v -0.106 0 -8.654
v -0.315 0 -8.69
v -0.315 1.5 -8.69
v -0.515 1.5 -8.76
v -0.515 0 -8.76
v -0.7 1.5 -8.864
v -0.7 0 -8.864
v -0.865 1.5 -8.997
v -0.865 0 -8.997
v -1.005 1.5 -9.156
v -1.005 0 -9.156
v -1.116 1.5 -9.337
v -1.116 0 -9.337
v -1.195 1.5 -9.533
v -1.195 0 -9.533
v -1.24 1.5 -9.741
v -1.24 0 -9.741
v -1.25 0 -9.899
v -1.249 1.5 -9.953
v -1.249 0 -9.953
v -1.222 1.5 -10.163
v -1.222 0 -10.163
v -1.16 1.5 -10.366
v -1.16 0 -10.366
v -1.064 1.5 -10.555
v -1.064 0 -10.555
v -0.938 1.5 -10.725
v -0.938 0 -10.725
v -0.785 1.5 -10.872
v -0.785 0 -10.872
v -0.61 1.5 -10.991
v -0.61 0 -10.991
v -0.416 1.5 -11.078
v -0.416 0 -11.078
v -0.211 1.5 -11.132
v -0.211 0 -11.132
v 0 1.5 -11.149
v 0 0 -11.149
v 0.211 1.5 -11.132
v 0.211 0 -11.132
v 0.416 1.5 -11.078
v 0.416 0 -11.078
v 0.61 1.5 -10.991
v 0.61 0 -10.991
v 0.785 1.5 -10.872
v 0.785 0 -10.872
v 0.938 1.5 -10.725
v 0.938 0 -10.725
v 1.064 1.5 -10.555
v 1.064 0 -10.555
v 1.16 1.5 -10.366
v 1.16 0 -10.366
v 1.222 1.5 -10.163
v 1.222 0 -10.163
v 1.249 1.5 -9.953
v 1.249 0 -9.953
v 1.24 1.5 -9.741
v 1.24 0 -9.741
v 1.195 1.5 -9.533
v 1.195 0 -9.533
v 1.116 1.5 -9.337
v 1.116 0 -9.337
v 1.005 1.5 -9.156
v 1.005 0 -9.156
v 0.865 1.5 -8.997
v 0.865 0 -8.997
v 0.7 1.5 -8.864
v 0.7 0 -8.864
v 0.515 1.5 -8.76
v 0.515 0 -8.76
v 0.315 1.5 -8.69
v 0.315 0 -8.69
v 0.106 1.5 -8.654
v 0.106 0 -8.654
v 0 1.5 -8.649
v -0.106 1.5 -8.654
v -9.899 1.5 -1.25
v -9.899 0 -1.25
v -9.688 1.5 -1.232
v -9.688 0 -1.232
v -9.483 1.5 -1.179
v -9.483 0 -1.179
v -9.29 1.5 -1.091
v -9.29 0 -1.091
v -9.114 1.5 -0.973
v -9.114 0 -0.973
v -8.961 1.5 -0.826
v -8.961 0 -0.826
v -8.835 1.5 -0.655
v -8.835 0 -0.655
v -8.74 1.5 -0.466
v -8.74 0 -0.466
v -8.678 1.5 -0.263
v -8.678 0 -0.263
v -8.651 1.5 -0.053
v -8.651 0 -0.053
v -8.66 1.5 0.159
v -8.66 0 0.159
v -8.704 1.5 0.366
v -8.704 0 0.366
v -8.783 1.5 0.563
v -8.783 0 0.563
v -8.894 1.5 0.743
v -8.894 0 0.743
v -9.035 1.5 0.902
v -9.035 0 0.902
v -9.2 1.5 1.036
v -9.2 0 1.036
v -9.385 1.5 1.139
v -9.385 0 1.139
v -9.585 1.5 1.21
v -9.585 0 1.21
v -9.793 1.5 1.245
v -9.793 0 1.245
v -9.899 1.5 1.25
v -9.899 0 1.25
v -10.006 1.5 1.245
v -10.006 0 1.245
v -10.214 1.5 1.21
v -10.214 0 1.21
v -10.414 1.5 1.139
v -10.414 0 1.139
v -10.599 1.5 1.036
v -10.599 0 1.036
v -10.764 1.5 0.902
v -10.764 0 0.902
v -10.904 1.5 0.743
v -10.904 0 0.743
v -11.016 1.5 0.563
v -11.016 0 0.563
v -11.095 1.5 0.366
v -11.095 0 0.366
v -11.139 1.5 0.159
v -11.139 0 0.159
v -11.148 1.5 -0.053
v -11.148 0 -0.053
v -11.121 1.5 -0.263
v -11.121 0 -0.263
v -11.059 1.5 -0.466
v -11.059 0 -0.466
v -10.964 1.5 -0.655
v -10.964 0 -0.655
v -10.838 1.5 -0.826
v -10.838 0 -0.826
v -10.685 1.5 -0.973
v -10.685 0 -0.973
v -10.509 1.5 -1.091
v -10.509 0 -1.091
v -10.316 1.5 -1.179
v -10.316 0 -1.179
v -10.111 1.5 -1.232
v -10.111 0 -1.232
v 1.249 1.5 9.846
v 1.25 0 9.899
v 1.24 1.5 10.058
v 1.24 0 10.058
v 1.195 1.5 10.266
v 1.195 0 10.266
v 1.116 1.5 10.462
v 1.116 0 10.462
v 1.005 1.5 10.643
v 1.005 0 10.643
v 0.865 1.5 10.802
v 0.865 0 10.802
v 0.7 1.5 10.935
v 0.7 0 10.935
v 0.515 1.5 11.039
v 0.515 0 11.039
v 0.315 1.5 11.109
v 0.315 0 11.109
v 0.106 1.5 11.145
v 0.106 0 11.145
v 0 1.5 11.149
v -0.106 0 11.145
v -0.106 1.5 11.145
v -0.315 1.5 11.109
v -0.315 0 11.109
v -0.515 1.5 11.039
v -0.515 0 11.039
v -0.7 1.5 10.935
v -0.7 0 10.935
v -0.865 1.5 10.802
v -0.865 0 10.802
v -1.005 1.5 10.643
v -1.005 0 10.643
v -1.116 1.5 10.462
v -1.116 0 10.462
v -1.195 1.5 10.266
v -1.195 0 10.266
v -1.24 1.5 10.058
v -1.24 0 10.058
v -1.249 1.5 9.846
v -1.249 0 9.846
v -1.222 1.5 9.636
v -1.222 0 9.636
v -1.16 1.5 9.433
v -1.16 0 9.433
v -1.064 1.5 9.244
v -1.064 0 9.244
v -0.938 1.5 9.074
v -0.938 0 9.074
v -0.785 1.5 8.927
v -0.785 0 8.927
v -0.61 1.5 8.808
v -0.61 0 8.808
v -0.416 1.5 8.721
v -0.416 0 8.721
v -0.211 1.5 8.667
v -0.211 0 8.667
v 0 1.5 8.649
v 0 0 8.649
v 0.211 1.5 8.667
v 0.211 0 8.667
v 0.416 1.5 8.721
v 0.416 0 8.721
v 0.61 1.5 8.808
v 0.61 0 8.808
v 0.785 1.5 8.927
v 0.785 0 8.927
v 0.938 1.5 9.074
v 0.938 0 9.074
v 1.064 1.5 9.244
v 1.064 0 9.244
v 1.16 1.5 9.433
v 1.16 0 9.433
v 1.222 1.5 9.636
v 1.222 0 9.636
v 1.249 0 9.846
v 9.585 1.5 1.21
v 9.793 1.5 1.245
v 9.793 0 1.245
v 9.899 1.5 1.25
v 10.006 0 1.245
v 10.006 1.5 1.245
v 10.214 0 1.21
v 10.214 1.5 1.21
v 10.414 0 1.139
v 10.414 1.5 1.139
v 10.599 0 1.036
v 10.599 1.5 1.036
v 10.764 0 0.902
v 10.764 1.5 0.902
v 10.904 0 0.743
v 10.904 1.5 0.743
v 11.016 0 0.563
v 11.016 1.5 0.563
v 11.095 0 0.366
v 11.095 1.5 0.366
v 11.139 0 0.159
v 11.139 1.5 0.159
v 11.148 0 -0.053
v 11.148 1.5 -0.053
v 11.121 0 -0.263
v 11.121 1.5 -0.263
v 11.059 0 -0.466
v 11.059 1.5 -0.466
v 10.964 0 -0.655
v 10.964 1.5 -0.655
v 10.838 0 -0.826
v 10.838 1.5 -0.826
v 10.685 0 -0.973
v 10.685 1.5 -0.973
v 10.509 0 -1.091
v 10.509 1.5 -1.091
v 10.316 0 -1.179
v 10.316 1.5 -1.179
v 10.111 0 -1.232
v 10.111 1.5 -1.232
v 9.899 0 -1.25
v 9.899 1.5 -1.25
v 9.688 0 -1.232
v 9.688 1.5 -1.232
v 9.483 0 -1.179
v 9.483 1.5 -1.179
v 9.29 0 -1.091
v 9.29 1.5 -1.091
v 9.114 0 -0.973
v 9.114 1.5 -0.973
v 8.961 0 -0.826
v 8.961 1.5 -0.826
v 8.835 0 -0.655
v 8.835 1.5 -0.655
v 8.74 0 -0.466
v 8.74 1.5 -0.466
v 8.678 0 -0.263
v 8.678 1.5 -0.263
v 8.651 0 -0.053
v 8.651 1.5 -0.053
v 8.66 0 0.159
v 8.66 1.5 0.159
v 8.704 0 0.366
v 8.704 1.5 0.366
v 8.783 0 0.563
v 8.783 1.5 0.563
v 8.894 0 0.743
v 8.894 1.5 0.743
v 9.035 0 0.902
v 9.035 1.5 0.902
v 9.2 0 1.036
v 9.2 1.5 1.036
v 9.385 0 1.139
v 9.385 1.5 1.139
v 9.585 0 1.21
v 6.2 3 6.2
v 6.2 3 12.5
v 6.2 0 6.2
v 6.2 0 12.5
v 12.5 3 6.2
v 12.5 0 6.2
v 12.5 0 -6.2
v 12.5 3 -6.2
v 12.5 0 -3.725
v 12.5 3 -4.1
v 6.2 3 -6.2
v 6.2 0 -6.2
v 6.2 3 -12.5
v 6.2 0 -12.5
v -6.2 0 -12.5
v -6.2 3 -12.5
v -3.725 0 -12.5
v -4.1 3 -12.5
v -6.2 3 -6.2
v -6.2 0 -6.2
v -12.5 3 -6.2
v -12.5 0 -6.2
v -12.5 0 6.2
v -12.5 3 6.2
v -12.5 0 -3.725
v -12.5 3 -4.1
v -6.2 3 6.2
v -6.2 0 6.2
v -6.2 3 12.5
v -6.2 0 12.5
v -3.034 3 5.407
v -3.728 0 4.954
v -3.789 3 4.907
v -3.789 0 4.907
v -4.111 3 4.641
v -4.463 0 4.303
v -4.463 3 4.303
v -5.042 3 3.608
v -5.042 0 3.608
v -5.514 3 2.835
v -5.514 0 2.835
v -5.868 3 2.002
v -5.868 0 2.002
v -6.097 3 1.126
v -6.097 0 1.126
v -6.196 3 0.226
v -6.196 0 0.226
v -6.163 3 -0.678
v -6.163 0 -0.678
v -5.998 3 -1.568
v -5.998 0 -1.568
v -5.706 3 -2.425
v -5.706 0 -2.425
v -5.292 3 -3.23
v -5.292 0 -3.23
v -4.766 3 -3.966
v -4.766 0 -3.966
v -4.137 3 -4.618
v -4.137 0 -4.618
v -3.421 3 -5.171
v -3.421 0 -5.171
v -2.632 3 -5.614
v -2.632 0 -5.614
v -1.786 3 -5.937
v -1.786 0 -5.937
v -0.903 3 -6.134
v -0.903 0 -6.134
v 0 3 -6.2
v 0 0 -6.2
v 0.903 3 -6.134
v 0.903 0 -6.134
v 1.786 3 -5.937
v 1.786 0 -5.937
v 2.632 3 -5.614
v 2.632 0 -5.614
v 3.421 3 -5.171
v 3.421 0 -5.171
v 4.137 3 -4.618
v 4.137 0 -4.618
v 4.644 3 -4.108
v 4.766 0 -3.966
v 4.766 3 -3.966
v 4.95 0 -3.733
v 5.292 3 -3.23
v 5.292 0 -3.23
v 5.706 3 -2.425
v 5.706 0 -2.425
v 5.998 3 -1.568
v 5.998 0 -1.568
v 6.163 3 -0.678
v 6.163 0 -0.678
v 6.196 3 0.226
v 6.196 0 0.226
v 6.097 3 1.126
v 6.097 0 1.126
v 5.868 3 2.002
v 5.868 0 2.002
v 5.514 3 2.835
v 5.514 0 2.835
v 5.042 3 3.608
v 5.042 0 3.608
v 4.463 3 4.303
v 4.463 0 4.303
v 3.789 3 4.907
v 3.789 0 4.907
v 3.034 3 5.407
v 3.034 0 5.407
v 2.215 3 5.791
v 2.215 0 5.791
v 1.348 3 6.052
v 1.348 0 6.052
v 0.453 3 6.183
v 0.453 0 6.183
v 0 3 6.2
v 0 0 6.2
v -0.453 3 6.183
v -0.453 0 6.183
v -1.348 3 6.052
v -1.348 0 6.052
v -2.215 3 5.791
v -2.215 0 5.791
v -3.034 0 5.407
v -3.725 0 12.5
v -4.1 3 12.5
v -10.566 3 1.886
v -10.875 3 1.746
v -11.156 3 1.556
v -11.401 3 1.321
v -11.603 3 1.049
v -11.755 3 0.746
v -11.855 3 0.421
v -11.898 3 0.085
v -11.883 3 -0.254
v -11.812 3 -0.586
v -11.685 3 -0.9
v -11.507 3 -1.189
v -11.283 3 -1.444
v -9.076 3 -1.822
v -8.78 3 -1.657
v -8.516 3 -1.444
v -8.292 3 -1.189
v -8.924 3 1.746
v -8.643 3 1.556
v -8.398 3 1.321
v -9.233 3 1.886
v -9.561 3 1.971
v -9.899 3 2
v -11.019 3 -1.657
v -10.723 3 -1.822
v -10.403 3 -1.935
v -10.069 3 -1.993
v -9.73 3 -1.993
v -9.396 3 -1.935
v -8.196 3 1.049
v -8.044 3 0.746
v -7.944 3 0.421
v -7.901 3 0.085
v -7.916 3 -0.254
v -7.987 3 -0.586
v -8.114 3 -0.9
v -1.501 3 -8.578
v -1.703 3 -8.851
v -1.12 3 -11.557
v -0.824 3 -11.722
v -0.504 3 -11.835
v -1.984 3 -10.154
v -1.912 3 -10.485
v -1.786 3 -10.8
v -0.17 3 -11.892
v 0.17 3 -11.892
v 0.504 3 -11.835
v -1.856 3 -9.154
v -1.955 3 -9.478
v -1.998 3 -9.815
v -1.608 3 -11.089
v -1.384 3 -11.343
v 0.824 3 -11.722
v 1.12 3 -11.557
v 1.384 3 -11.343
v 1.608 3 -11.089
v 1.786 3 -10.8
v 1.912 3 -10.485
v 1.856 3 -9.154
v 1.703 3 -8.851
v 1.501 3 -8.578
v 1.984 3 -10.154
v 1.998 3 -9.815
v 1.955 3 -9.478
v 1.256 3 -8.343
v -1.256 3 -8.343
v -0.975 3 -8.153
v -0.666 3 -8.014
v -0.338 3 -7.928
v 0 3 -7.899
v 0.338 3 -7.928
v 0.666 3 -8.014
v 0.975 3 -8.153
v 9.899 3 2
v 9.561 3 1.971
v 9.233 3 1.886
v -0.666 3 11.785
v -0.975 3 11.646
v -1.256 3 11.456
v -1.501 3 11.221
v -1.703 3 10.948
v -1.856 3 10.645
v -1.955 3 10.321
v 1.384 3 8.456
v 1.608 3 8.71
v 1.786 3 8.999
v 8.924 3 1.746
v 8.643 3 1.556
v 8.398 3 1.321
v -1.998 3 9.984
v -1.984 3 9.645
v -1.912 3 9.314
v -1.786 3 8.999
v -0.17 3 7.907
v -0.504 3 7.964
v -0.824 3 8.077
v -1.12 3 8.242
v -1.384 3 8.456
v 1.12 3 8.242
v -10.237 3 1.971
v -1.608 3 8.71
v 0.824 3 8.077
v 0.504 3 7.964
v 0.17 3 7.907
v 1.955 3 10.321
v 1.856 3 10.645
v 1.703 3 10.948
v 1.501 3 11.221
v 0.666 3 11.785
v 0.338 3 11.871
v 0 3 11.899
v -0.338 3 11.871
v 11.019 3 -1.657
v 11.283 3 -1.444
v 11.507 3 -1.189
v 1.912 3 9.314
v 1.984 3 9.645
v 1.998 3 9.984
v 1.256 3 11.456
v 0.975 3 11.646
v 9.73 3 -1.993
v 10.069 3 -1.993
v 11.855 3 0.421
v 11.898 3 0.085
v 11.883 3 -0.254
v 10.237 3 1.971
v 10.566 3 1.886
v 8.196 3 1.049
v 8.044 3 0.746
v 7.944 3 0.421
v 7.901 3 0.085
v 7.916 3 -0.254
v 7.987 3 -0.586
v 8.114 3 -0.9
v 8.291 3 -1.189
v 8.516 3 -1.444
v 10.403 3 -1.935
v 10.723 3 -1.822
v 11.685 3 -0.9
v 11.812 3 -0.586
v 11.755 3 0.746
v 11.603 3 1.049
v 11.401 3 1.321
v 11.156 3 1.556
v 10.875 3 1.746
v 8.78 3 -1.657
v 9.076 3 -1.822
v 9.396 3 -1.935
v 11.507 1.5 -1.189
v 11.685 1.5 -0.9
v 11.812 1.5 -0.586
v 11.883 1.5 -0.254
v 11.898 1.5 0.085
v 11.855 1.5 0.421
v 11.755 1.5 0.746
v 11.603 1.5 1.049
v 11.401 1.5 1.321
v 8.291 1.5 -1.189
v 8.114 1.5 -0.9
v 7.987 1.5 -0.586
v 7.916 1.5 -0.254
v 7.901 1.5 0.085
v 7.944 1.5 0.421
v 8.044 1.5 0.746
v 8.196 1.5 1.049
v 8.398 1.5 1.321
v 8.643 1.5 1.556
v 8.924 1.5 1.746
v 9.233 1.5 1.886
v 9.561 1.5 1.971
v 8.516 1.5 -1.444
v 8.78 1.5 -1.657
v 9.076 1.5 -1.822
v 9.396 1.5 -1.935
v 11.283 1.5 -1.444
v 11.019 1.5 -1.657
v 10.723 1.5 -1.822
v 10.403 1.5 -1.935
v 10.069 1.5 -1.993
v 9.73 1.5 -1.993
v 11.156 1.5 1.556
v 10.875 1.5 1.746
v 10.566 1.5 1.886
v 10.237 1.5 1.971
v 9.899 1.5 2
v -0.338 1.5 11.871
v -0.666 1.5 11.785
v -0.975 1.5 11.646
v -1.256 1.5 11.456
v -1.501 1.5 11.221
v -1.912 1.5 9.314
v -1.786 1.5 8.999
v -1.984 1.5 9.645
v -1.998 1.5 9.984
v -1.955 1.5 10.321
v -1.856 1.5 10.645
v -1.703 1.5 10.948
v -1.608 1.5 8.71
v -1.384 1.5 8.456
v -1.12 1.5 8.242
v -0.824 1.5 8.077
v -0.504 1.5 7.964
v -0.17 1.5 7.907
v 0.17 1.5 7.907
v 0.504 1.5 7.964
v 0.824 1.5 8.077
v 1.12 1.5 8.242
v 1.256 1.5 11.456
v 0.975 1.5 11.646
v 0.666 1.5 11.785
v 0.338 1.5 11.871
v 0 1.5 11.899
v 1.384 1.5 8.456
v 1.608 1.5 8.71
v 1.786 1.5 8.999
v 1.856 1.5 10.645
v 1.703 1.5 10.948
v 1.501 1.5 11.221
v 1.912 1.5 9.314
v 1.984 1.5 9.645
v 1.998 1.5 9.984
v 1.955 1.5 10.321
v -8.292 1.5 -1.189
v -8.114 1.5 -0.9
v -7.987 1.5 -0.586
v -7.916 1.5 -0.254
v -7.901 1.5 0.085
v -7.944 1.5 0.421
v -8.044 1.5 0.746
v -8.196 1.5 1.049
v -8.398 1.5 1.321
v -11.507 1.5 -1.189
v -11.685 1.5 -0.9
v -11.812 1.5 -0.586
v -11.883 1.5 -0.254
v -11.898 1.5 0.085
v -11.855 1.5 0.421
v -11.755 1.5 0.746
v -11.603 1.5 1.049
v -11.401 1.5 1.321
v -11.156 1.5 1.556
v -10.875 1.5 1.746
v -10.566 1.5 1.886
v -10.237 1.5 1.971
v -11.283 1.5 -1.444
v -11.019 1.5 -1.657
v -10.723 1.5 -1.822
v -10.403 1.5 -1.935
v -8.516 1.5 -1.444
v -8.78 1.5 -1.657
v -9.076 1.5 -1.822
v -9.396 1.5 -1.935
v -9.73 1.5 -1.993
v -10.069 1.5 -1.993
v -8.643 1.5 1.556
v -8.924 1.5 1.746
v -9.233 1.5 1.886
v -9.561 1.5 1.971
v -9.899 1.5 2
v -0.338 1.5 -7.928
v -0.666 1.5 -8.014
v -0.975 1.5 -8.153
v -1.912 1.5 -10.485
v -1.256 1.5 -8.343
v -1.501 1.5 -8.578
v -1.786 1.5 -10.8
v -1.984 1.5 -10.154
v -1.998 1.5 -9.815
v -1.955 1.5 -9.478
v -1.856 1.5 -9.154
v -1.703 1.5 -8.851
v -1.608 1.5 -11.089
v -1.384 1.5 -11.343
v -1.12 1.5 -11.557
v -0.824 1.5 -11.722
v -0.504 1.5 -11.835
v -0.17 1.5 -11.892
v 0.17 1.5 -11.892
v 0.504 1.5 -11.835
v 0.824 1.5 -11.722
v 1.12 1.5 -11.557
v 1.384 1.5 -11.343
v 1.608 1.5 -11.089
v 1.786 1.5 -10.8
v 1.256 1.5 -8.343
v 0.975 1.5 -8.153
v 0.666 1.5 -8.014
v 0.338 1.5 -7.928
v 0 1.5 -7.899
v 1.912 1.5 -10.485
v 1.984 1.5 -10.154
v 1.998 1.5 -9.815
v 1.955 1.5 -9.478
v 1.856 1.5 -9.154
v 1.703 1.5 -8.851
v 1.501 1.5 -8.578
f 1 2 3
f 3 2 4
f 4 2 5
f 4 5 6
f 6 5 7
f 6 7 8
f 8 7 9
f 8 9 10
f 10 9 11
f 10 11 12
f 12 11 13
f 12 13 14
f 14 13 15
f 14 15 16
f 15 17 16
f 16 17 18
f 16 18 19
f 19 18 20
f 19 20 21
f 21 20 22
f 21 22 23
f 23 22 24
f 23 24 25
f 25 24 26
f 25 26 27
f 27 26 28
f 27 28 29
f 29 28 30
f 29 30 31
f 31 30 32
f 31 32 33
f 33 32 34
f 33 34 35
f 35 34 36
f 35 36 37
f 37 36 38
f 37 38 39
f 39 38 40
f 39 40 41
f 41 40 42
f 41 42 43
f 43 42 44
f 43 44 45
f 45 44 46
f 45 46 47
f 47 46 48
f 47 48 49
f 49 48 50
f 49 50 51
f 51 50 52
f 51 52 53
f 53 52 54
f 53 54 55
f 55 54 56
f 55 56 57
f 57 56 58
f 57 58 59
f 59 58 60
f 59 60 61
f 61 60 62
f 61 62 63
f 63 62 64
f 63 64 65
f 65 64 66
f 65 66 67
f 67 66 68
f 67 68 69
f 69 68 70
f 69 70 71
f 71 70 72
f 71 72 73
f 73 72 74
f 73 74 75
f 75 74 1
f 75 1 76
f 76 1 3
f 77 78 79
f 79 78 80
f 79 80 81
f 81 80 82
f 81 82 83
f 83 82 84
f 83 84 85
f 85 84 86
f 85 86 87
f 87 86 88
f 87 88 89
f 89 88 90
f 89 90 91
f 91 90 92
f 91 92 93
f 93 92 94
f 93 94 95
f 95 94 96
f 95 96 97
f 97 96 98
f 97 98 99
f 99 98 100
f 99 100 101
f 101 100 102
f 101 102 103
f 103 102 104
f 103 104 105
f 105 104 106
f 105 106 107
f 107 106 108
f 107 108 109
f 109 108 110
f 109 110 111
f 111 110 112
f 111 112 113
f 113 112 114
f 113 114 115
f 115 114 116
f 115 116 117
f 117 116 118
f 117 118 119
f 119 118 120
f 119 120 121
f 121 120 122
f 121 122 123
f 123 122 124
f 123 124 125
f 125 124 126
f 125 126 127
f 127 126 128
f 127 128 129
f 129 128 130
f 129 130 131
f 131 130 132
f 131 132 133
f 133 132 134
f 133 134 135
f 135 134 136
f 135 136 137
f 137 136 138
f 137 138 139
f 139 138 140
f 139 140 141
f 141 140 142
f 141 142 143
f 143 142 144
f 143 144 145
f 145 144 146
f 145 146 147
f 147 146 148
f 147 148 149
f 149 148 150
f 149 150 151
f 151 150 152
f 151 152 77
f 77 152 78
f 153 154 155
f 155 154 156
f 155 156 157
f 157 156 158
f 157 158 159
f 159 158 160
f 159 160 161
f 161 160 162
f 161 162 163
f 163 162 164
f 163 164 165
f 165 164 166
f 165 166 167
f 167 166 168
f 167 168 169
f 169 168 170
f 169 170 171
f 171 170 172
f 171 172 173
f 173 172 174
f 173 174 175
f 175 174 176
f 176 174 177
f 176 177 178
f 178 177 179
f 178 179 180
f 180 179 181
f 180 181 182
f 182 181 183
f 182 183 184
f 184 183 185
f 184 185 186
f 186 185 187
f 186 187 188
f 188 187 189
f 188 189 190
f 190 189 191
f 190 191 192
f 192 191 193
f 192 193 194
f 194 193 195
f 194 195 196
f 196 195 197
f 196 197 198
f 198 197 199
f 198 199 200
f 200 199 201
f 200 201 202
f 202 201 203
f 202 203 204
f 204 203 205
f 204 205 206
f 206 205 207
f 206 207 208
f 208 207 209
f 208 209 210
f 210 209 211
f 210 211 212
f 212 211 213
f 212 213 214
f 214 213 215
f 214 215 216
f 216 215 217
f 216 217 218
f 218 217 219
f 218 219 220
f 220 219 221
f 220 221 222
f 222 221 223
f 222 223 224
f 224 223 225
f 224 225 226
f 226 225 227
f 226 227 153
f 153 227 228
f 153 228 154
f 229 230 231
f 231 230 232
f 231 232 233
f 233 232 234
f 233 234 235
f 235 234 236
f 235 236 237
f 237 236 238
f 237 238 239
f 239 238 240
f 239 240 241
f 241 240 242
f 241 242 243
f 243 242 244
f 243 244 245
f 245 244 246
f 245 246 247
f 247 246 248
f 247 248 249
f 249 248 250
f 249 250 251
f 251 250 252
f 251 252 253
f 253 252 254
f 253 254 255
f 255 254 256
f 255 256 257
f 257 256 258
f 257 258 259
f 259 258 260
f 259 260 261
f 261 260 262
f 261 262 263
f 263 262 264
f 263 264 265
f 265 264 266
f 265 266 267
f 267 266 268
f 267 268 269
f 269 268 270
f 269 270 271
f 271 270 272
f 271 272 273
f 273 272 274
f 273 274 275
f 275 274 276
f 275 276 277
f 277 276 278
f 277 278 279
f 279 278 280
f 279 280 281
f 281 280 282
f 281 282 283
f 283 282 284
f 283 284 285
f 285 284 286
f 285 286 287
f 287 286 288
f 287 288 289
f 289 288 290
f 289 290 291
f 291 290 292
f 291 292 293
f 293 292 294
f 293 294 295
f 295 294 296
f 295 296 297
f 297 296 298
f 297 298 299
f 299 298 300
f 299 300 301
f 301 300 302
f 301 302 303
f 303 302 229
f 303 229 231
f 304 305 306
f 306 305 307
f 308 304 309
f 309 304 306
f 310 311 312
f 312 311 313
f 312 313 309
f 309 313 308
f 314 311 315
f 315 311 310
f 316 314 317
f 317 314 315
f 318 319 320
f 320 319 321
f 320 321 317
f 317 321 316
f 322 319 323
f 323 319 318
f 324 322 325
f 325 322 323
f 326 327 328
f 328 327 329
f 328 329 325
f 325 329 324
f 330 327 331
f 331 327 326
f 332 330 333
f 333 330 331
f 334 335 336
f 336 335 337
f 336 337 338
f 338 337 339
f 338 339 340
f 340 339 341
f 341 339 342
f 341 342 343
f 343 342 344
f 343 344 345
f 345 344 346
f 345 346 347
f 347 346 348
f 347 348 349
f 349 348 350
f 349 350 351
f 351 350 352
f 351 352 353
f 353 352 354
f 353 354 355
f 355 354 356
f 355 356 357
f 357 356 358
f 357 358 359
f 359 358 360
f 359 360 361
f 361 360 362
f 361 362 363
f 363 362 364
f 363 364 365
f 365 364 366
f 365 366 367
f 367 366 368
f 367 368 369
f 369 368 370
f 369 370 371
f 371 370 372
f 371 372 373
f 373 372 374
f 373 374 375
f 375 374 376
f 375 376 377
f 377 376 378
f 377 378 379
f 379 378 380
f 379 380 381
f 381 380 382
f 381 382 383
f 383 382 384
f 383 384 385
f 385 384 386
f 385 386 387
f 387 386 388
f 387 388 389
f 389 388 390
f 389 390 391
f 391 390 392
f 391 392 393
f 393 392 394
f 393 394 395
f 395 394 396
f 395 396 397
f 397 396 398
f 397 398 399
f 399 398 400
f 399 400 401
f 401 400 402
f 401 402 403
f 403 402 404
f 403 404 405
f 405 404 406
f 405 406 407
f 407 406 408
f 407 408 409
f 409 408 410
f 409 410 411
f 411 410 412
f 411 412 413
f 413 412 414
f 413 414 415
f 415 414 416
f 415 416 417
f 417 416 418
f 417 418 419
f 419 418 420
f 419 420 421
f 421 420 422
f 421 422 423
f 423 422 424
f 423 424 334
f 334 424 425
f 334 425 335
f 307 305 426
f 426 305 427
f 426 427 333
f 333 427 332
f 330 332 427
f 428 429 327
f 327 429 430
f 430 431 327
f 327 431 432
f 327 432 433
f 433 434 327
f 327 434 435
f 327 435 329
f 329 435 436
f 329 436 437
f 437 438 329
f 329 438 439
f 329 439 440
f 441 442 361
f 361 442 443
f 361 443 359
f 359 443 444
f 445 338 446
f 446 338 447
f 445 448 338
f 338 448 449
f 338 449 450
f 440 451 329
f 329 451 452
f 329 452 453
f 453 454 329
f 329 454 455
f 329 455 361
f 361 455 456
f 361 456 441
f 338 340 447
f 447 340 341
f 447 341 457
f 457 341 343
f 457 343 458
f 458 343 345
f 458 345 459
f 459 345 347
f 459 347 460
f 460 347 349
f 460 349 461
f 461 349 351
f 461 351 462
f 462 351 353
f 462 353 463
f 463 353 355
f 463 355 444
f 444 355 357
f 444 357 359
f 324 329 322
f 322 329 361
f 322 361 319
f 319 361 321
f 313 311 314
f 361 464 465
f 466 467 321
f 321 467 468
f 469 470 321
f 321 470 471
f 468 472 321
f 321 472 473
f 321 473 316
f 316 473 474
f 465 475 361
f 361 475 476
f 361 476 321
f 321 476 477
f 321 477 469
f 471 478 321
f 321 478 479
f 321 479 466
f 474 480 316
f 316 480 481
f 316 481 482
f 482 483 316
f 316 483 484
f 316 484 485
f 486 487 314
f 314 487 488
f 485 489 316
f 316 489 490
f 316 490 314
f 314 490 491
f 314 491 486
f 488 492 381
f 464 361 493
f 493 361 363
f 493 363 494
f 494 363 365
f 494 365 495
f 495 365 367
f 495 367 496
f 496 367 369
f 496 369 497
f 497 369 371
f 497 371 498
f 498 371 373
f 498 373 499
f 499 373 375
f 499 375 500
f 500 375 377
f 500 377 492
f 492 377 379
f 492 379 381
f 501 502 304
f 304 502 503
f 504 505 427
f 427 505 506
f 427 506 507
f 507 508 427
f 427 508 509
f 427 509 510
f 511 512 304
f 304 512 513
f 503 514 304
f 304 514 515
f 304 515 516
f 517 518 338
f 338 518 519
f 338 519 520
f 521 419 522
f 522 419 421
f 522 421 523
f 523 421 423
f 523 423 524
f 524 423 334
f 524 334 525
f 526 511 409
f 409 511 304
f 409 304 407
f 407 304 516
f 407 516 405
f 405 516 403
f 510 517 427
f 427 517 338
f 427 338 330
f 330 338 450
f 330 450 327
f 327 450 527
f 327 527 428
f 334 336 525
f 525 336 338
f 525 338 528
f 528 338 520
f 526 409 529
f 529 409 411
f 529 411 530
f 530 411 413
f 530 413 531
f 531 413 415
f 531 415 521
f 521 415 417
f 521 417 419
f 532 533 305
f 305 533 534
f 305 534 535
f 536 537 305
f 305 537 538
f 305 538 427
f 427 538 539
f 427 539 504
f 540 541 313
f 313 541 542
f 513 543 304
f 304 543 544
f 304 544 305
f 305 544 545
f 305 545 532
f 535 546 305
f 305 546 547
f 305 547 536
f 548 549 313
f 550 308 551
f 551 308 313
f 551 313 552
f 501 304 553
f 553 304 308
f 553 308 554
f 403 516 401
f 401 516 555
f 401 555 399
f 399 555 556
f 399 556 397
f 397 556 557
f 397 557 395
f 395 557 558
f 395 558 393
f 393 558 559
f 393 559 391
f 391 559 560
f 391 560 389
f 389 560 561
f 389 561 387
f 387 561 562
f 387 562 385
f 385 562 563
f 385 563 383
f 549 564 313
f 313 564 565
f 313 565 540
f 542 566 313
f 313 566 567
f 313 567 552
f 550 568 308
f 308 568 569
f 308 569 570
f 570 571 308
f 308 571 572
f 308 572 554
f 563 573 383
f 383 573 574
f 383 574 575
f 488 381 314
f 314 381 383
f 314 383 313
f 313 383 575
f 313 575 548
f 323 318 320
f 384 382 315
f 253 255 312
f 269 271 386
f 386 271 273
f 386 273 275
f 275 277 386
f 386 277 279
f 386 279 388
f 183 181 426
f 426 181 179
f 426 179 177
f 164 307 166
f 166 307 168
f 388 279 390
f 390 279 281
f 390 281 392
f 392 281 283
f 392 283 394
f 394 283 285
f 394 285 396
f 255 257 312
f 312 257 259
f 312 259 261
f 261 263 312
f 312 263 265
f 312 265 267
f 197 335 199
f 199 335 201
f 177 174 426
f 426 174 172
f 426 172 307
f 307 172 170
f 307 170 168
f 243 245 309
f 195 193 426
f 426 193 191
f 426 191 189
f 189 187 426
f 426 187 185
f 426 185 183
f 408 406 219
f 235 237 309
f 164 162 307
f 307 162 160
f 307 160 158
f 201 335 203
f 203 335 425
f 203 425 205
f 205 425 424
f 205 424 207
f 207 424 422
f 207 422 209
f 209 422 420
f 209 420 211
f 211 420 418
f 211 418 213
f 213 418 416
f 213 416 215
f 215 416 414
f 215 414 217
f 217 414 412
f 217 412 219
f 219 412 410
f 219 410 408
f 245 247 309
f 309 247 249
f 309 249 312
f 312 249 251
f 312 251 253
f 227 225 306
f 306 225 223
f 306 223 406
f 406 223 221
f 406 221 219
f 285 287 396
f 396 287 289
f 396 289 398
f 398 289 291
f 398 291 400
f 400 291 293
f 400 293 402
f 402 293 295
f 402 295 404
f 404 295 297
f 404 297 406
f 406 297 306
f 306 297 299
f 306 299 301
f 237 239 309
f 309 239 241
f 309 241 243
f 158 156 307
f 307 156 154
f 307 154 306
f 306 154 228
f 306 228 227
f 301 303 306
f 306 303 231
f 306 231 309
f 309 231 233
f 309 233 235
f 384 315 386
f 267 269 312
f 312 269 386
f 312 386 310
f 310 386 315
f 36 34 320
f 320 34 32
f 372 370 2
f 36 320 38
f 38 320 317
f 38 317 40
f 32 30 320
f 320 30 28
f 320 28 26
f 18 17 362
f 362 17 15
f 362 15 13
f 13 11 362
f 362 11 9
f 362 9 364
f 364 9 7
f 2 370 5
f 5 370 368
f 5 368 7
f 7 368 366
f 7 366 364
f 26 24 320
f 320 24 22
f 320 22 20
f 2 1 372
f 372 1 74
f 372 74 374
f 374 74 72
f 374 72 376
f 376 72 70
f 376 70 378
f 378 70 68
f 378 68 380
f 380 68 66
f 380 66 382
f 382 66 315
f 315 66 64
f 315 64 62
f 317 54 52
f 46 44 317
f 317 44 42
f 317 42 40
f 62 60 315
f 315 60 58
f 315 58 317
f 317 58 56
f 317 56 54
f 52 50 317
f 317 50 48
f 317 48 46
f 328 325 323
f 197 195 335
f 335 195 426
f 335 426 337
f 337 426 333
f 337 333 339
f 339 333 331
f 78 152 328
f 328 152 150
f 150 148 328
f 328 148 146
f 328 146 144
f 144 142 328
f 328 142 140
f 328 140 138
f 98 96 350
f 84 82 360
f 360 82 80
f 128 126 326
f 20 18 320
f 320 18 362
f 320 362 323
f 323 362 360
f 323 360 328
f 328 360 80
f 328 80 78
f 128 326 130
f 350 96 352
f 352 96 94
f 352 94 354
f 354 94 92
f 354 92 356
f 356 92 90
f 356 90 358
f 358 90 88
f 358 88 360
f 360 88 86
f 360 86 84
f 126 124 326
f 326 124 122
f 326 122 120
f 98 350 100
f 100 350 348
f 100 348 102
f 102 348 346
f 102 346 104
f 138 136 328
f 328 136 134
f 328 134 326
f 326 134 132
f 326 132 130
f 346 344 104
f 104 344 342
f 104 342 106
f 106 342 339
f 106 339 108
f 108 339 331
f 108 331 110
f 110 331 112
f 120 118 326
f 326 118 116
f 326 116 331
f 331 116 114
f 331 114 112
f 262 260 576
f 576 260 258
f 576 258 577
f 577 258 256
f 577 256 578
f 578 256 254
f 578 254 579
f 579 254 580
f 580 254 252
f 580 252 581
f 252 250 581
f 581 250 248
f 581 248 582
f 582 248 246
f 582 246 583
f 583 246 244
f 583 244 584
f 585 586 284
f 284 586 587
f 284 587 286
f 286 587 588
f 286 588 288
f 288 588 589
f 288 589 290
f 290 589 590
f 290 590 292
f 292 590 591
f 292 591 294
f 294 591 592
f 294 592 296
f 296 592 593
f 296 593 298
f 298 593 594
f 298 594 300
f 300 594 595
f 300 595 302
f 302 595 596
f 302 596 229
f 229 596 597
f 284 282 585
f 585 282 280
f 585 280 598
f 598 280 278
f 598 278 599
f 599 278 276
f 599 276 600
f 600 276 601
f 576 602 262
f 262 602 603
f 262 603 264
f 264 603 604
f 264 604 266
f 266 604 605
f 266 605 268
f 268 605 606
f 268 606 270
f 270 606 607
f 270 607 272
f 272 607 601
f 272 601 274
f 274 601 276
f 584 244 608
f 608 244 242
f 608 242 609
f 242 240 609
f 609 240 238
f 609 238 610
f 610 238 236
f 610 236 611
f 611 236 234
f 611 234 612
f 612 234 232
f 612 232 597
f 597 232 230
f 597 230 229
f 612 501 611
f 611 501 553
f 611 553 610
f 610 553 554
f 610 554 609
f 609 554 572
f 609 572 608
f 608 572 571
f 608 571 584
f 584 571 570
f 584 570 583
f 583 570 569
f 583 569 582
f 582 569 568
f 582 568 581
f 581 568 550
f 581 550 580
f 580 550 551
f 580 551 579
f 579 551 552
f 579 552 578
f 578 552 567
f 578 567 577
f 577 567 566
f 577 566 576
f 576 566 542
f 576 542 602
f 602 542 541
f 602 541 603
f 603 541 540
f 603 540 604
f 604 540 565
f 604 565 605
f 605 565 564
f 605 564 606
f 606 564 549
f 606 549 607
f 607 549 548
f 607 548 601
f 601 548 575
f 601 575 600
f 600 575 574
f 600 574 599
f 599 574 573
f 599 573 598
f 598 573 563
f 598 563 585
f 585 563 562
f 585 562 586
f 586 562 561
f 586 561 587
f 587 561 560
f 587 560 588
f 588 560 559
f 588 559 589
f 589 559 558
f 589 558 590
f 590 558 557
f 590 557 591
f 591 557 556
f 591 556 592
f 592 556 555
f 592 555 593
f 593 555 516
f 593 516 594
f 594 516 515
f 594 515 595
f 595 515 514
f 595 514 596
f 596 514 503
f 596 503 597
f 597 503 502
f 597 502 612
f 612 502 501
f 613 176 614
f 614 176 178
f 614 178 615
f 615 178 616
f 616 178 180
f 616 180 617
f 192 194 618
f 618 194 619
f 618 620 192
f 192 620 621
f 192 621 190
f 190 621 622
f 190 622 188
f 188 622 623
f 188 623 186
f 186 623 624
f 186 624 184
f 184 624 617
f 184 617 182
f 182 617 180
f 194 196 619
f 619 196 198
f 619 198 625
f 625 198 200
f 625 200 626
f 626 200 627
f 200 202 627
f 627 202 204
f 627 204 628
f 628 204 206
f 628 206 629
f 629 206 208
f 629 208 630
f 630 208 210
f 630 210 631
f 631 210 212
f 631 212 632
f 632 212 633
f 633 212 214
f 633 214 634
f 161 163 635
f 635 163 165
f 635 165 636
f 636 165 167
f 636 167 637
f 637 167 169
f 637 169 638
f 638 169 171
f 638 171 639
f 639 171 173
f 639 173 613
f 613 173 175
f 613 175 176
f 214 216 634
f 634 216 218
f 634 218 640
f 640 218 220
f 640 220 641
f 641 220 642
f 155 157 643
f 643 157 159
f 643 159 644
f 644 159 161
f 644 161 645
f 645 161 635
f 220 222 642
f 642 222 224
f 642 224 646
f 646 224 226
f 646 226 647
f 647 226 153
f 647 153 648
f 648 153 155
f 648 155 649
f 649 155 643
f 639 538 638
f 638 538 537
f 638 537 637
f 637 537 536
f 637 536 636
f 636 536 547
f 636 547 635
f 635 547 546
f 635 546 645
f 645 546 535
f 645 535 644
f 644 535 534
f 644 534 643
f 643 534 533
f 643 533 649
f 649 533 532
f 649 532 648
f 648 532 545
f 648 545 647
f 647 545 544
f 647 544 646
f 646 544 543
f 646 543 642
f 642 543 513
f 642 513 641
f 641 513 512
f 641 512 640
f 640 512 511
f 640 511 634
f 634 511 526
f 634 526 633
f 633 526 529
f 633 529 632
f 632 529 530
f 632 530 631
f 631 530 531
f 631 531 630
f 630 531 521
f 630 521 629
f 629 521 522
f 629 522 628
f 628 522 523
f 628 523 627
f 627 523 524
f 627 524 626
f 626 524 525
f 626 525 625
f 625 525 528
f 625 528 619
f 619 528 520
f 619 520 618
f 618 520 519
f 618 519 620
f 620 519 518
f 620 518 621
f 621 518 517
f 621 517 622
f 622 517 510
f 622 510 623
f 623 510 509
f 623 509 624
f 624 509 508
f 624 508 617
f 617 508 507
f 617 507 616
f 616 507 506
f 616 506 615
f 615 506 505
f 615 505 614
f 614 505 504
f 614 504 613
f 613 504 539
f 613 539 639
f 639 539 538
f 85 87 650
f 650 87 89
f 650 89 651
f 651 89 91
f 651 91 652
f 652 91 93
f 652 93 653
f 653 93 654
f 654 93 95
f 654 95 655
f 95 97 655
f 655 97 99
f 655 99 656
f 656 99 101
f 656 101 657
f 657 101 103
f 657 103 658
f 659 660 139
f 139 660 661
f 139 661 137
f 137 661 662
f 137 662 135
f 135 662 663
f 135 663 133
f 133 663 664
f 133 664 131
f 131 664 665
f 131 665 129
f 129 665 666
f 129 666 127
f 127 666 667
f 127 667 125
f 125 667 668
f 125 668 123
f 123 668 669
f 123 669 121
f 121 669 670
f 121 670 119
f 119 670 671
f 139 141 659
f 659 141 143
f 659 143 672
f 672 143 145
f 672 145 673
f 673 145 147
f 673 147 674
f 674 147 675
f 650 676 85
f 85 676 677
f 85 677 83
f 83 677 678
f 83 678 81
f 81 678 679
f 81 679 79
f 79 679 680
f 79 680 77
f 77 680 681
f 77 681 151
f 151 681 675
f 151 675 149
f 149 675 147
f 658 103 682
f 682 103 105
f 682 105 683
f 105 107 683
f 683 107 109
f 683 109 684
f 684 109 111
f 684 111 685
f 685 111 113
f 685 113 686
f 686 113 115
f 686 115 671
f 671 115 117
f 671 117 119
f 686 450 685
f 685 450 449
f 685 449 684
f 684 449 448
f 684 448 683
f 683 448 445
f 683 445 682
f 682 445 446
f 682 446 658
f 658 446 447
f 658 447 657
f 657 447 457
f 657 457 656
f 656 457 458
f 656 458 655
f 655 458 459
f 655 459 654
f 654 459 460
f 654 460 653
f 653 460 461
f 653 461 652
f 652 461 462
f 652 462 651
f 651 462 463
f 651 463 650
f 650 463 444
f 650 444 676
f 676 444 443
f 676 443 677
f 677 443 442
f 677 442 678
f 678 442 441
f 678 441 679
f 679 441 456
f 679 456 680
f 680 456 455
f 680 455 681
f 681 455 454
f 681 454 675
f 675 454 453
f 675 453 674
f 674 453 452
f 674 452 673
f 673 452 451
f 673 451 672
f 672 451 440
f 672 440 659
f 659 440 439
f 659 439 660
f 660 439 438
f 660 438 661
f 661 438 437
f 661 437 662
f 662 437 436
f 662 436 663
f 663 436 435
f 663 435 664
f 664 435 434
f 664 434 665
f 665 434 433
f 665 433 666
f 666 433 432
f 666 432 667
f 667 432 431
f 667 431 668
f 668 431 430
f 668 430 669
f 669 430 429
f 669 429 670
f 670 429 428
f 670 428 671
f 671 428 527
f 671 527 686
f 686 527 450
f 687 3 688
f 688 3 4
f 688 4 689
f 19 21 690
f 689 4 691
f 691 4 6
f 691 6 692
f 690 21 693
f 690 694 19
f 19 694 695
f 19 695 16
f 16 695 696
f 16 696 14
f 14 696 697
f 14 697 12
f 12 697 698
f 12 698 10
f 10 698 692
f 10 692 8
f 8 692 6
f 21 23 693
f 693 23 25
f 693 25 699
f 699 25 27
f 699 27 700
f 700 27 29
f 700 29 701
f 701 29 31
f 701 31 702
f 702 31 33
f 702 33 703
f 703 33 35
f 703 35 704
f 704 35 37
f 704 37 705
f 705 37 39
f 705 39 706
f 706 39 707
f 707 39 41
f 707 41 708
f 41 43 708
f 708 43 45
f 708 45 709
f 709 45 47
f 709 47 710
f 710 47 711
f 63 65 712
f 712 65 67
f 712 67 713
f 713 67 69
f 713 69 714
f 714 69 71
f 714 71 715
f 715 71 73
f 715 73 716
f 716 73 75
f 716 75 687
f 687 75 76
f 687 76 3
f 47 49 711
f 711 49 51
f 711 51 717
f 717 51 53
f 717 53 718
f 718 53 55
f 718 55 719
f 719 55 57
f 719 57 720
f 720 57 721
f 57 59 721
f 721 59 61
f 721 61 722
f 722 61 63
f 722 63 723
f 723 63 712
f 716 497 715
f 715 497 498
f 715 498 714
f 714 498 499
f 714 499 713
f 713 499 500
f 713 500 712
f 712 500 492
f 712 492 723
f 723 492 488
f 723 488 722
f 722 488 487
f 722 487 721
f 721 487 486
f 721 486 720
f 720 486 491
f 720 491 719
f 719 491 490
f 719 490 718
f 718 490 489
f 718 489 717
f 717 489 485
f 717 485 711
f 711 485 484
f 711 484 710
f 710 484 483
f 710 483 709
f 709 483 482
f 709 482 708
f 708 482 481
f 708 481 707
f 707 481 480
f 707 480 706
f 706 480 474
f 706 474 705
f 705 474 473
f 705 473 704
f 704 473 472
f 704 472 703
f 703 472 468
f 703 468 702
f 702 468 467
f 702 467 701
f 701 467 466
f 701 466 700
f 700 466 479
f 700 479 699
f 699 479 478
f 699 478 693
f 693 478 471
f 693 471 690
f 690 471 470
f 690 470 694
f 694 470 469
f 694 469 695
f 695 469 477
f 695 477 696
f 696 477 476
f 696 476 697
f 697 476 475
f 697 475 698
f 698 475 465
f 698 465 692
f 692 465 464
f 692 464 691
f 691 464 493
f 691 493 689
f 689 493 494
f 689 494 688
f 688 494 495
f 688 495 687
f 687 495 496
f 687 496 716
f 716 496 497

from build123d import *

# Parameters (mm, degrees)
EXTRUDE_1_DEPTH          = 3
SKETCH_2_R               = 1.25
CUT_EXTRUDE_1_DEPTH      = 18.930421077
CUT_EXTRUDE_START        = -3
SKETCH_2_3_R             = 2
CUT_EXTRUDE_2_DEPTH      = 1.5
PATTERN_CIRCULAR_1_COUNT = 4


with BuildPart() as part:
    # 草图1 → 凸台-拉伸1 (new body)
    with BuildSketch(Plane(origin=(0, 0, 0), x_dir=(1, 0, 0), z_dir=(0, 1, 0))):
        with BuildLine():
            ThreePointArc((0, 6.2), (4.384062043, 4.384062043), (6.2, 0))
            Line((6.2, 0), (6.2, 6.2))
            Line((6.2, 6.2), (0, 6.2))
        make_face()
        with BuildLine():
            Line((-6.2, 6.2), (-6.2, 1.3e-08))
            ThreePointArc((-6.2, 1.3e-08), (-4.384062039, 4.384062048), (0, 6.2))
            Line((0, 6.2), (-6.2, 6.2))
        make_face()
        with BuildLine():
            Line((-6.2, 1.3e-08), (-6.2, -6.2))
            Line((-6.2, -6.2), (0, -6.2))
            ThreePointArc((0, -6.2), (-4.384062048, -4.384062039), (-6.2, 1.3e-08))
        make_face()
        with BuildLine():
            ThreePointArc((6.2, 0), (4.384062043, -4.384062043), (0, -6.2))
            Line((0, -6.2), (6.2, -6.2))
            Line((6.2, -6.2), (6.2, 0))
        make_face()
        Polygon((0, -6.2), (-6.2, -6.2), (-6.2, -12.5), (6.2, -12.5), (6.2, -6.2), align=None)
        Polygon((6.2, 0), (6.2, -6.2), (12.5, -6.2), (12.5, 6.2), (6.2, 6.2), align=None)
        Polygon((-6.2, 12.5), (-6.2, 6.2), (0, 6.2), (6.2, 6.2), (6.2, 12.5), align=None)
        Polygon((-12.5, 6.2), (-12.5, -6.2), (-6.2, -6.2), (-6.2, 1.3e-08), (-6.2, 6.2), align=None)
    extrude(amount=EXTRUDE_1_DEPTH)

    # 草图2 → 切除-拉伸1 (cut, through all)
    with BuildSketch(Plane(origin=(0, 0, 0), x_dir=(-1, 0, 0), z_dir=(0, -1, 0))):
        with Locations(Location((-9.899494937, 0, 0), (0, 0, 90))):
            Circle(SKETCH_2_R)
    cut_extrude_1 = extrude(amount=-CUT_EXTRUDE_1_DEPTH, mode=Mode.SUBTRACT)

    # 草图2<3> → 切除-拉伸2 (cut)
    with BuildSketch(Plane(origin=(0, 0, 0), x_dir=(-1, 0, 0), z_dir=(0, -1, 0)).offset(CUT_EXTRUDE_START)):
        with Locations(Location((-9.899494937, 0, 0), (0, 0, 270))):
            Circle(SKETCH_2_3_R)
    cut_extrude_2 = extrude(amount=CUT_EXTRUDE_2_DEPTH, mode=Mode.SUBTRACT)

    # 阵列(圆周)1: 切除-拉伸1, 切除-拉伸2 ×4 about axis
    pattern_circular_1_axis = Axis((0, 0, 0), (0, 1, 0))
    add([cut_extrude_1.rotate(pattern_circular_1_axis, i * 360 / PATTERN_CIRCULAR_1_COUNT) for i in range(1, PATTERN_CIRCULAR_1_COUNT)], mode=Mode.SUBTRACT)
    add([cut_extrude_2.rotate(pattern_circular_1_axis, i * 360 / PATTERN_CIRCULAR_1_COUNT) for i in range(1, PATTERN_CIRCULAR_1_COUNT)], mode=Mode.SUBTRACT)


solid = part.part
